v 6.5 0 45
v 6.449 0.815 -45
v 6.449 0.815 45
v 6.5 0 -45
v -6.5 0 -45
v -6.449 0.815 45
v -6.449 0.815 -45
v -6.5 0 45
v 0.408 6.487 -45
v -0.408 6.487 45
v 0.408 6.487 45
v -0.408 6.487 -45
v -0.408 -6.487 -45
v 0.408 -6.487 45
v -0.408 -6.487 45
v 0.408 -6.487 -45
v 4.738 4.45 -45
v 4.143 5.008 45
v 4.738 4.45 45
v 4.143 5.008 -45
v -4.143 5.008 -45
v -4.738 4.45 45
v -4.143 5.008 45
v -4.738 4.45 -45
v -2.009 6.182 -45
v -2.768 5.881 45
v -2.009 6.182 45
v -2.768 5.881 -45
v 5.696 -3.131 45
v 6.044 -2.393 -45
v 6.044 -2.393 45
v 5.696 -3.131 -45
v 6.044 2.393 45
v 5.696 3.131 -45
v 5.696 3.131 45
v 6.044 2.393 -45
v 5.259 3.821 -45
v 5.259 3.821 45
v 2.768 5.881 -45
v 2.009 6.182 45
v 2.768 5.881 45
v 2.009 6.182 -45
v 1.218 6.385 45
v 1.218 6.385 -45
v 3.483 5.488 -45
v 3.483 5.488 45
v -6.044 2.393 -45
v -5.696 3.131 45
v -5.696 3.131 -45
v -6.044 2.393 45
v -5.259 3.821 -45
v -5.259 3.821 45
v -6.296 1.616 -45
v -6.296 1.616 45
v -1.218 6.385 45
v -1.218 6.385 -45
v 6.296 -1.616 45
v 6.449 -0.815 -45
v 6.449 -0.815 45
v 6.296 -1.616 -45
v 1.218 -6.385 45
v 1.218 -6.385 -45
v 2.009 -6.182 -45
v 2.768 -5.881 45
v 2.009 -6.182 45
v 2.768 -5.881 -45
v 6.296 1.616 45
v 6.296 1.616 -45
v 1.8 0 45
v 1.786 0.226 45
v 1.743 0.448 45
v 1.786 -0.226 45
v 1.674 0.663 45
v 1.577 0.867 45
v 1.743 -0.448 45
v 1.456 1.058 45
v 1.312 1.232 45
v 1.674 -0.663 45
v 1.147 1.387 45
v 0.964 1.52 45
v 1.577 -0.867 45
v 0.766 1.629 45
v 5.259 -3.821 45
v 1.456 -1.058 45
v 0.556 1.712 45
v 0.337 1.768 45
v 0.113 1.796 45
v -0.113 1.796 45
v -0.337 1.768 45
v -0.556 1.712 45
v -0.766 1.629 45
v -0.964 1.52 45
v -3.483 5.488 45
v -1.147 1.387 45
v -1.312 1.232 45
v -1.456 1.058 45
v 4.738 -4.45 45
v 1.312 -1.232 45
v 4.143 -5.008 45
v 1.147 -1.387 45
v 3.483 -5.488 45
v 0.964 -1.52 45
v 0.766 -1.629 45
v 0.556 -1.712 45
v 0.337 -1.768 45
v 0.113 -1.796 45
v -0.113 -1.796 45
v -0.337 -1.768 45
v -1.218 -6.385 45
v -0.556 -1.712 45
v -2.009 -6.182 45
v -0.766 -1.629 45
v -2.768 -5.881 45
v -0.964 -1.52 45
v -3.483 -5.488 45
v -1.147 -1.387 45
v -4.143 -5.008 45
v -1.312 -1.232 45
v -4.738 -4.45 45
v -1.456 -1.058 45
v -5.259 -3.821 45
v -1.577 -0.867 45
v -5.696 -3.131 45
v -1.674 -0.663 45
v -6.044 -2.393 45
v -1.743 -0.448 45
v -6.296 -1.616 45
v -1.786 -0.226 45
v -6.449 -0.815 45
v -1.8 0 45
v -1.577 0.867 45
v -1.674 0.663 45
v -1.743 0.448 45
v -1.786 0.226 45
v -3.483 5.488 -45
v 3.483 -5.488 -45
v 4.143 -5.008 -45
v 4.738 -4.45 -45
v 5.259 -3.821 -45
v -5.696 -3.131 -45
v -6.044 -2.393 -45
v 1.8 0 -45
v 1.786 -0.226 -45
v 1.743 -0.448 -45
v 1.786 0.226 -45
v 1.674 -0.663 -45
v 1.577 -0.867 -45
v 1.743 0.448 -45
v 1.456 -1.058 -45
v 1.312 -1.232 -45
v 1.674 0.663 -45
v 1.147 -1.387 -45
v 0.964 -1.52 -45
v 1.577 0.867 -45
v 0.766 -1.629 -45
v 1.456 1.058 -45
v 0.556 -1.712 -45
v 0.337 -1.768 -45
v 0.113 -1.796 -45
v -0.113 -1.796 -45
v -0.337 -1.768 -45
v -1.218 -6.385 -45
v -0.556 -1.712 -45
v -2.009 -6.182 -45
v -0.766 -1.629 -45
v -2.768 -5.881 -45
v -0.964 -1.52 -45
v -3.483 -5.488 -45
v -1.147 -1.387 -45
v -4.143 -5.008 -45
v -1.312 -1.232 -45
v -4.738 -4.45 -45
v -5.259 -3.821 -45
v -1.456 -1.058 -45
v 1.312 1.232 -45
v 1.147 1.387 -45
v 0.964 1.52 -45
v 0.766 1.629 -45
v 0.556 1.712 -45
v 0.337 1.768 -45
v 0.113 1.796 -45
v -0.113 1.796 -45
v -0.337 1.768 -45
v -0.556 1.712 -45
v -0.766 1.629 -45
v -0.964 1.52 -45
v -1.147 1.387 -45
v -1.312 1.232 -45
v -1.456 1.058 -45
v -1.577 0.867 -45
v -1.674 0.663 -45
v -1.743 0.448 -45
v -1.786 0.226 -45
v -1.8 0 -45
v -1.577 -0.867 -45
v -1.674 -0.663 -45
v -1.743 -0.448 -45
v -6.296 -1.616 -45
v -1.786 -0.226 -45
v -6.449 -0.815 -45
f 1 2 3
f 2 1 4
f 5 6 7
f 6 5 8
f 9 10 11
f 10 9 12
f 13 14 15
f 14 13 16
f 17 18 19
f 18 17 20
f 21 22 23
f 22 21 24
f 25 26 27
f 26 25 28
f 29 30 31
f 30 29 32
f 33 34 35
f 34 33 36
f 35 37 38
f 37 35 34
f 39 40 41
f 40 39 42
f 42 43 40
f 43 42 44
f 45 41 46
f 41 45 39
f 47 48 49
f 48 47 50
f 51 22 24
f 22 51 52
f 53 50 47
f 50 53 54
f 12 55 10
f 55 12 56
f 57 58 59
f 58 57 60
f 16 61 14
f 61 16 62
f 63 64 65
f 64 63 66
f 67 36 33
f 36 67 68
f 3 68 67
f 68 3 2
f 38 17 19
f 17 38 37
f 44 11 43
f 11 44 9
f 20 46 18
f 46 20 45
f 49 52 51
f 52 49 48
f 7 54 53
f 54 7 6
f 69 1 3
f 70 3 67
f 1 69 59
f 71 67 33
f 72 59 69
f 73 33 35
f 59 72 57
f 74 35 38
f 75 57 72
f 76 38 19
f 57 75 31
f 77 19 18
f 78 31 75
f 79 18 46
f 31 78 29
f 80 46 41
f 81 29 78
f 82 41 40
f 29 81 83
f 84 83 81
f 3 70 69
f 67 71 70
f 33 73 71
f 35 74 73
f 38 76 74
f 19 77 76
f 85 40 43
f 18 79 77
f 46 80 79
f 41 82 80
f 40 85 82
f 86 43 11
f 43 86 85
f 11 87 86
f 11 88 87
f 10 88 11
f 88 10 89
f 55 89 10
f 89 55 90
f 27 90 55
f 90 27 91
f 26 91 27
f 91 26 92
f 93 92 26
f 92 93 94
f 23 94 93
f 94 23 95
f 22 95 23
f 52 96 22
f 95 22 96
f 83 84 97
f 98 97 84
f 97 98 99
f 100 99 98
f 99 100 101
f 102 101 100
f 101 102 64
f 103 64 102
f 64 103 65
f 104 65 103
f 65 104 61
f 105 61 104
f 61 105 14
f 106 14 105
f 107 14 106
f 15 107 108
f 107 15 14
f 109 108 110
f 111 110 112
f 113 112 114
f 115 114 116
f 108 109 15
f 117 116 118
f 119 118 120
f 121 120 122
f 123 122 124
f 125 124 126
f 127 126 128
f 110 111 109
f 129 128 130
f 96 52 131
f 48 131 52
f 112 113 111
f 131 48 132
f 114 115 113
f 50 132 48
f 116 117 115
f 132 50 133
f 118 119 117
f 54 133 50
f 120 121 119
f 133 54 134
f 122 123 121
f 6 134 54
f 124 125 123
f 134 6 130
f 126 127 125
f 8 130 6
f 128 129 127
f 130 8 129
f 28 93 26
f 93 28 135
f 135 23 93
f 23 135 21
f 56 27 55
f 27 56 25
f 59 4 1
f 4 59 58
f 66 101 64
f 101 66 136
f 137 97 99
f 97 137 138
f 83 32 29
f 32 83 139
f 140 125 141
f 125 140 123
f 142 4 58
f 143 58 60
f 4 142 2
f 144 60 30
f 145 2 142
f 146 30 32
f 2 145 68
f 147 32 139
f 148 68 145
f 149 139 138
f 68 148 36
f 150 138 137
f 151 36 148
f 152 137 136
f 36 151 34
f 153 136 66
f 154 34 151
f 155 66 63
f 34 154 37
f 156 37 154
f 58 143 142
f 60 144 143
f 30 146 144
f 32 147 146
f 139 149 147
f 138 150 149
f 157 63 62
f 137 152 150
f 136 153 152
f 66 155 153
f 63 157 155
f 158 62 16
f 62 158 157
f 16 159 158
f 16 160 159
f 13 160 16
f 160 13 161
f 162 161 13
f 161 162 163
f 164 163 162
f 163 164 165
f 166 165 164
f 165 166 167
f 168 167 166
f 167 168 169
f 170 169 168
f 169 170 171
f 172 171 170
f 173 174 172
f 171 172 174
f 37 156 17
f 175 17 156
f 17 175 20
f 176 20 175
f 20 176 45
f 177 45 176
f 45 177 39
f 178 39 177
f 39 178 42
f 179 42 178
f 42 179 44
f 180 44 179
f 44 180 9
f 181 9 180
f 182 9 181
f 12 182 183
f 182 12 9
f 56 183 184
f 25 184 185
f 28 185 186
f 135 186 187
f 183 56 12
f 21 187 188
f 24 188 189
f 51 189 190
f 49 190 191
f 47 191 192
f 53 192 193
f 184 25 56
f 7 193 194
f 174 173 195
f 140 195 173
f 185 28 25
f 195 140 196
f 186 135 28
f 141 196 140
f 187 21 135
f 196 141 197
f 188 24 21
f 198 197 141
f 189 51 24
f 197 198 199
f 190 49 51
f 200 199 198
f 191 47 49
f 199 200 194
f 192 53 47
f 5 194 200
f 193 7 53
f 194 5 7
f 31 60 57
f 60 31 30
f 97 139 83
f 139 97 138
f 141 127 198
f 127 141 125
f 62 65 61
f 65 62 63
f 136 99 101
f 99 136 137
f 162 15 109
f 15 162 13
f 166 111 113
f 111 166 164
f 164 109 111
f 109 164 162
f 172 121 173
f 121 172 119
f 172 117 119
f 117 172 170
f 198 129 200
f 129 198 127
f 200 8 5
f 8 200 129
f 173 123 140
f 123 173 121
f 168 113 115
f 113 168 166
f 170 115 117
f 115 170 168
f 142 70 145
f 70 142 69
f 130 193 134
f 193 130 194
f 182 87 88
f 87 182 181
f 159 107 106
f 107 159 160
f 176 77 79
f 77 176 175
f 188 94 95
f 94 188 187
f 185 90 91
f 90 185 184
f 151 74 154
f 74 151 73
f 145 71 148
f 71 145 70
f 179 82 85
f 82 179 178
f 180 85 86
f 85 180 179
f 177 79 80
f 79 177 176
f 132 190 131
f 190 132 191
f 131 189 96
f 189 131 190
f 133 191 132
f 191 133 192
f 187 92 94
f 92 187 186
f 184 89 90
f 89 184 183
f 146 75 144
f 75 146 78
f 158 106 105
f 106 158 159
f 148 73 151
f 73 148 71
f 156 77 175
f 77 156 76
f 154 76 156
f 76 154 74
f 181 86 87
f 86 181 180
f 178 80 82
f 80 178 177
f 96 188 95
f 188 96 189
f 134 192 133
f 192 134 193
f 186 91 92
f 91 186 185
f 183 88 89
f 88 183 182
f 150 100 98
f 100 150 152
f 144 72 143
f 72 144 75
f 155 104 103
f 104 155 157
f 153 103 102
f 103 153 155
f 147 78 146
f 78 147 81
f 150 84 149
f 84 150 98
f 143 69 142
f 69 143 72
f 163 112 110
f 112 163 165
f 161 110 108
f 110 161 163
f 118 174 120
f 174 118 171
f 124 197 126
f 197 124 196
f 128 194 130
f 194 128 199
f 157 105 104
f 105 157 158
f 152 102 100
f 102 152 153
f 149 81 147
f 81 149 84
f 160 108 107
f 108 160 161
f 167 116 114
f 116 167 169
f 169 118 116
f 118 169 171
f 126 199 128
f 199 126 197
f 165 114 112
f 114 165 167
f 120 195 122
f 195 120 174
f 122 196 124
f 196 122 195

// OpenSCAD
$fn = 50;


difference() {
	union() {
		translate(v = [0, 0, -45.0000000000]) {
			cylinder(h = 90, r = 6.5000000000);
		}
	}
	union() {
		translate(v = [0, 0, -100.0000000000]) {
			cylinder(h = 200, r = 1.8000000000);
		}
	}
}
